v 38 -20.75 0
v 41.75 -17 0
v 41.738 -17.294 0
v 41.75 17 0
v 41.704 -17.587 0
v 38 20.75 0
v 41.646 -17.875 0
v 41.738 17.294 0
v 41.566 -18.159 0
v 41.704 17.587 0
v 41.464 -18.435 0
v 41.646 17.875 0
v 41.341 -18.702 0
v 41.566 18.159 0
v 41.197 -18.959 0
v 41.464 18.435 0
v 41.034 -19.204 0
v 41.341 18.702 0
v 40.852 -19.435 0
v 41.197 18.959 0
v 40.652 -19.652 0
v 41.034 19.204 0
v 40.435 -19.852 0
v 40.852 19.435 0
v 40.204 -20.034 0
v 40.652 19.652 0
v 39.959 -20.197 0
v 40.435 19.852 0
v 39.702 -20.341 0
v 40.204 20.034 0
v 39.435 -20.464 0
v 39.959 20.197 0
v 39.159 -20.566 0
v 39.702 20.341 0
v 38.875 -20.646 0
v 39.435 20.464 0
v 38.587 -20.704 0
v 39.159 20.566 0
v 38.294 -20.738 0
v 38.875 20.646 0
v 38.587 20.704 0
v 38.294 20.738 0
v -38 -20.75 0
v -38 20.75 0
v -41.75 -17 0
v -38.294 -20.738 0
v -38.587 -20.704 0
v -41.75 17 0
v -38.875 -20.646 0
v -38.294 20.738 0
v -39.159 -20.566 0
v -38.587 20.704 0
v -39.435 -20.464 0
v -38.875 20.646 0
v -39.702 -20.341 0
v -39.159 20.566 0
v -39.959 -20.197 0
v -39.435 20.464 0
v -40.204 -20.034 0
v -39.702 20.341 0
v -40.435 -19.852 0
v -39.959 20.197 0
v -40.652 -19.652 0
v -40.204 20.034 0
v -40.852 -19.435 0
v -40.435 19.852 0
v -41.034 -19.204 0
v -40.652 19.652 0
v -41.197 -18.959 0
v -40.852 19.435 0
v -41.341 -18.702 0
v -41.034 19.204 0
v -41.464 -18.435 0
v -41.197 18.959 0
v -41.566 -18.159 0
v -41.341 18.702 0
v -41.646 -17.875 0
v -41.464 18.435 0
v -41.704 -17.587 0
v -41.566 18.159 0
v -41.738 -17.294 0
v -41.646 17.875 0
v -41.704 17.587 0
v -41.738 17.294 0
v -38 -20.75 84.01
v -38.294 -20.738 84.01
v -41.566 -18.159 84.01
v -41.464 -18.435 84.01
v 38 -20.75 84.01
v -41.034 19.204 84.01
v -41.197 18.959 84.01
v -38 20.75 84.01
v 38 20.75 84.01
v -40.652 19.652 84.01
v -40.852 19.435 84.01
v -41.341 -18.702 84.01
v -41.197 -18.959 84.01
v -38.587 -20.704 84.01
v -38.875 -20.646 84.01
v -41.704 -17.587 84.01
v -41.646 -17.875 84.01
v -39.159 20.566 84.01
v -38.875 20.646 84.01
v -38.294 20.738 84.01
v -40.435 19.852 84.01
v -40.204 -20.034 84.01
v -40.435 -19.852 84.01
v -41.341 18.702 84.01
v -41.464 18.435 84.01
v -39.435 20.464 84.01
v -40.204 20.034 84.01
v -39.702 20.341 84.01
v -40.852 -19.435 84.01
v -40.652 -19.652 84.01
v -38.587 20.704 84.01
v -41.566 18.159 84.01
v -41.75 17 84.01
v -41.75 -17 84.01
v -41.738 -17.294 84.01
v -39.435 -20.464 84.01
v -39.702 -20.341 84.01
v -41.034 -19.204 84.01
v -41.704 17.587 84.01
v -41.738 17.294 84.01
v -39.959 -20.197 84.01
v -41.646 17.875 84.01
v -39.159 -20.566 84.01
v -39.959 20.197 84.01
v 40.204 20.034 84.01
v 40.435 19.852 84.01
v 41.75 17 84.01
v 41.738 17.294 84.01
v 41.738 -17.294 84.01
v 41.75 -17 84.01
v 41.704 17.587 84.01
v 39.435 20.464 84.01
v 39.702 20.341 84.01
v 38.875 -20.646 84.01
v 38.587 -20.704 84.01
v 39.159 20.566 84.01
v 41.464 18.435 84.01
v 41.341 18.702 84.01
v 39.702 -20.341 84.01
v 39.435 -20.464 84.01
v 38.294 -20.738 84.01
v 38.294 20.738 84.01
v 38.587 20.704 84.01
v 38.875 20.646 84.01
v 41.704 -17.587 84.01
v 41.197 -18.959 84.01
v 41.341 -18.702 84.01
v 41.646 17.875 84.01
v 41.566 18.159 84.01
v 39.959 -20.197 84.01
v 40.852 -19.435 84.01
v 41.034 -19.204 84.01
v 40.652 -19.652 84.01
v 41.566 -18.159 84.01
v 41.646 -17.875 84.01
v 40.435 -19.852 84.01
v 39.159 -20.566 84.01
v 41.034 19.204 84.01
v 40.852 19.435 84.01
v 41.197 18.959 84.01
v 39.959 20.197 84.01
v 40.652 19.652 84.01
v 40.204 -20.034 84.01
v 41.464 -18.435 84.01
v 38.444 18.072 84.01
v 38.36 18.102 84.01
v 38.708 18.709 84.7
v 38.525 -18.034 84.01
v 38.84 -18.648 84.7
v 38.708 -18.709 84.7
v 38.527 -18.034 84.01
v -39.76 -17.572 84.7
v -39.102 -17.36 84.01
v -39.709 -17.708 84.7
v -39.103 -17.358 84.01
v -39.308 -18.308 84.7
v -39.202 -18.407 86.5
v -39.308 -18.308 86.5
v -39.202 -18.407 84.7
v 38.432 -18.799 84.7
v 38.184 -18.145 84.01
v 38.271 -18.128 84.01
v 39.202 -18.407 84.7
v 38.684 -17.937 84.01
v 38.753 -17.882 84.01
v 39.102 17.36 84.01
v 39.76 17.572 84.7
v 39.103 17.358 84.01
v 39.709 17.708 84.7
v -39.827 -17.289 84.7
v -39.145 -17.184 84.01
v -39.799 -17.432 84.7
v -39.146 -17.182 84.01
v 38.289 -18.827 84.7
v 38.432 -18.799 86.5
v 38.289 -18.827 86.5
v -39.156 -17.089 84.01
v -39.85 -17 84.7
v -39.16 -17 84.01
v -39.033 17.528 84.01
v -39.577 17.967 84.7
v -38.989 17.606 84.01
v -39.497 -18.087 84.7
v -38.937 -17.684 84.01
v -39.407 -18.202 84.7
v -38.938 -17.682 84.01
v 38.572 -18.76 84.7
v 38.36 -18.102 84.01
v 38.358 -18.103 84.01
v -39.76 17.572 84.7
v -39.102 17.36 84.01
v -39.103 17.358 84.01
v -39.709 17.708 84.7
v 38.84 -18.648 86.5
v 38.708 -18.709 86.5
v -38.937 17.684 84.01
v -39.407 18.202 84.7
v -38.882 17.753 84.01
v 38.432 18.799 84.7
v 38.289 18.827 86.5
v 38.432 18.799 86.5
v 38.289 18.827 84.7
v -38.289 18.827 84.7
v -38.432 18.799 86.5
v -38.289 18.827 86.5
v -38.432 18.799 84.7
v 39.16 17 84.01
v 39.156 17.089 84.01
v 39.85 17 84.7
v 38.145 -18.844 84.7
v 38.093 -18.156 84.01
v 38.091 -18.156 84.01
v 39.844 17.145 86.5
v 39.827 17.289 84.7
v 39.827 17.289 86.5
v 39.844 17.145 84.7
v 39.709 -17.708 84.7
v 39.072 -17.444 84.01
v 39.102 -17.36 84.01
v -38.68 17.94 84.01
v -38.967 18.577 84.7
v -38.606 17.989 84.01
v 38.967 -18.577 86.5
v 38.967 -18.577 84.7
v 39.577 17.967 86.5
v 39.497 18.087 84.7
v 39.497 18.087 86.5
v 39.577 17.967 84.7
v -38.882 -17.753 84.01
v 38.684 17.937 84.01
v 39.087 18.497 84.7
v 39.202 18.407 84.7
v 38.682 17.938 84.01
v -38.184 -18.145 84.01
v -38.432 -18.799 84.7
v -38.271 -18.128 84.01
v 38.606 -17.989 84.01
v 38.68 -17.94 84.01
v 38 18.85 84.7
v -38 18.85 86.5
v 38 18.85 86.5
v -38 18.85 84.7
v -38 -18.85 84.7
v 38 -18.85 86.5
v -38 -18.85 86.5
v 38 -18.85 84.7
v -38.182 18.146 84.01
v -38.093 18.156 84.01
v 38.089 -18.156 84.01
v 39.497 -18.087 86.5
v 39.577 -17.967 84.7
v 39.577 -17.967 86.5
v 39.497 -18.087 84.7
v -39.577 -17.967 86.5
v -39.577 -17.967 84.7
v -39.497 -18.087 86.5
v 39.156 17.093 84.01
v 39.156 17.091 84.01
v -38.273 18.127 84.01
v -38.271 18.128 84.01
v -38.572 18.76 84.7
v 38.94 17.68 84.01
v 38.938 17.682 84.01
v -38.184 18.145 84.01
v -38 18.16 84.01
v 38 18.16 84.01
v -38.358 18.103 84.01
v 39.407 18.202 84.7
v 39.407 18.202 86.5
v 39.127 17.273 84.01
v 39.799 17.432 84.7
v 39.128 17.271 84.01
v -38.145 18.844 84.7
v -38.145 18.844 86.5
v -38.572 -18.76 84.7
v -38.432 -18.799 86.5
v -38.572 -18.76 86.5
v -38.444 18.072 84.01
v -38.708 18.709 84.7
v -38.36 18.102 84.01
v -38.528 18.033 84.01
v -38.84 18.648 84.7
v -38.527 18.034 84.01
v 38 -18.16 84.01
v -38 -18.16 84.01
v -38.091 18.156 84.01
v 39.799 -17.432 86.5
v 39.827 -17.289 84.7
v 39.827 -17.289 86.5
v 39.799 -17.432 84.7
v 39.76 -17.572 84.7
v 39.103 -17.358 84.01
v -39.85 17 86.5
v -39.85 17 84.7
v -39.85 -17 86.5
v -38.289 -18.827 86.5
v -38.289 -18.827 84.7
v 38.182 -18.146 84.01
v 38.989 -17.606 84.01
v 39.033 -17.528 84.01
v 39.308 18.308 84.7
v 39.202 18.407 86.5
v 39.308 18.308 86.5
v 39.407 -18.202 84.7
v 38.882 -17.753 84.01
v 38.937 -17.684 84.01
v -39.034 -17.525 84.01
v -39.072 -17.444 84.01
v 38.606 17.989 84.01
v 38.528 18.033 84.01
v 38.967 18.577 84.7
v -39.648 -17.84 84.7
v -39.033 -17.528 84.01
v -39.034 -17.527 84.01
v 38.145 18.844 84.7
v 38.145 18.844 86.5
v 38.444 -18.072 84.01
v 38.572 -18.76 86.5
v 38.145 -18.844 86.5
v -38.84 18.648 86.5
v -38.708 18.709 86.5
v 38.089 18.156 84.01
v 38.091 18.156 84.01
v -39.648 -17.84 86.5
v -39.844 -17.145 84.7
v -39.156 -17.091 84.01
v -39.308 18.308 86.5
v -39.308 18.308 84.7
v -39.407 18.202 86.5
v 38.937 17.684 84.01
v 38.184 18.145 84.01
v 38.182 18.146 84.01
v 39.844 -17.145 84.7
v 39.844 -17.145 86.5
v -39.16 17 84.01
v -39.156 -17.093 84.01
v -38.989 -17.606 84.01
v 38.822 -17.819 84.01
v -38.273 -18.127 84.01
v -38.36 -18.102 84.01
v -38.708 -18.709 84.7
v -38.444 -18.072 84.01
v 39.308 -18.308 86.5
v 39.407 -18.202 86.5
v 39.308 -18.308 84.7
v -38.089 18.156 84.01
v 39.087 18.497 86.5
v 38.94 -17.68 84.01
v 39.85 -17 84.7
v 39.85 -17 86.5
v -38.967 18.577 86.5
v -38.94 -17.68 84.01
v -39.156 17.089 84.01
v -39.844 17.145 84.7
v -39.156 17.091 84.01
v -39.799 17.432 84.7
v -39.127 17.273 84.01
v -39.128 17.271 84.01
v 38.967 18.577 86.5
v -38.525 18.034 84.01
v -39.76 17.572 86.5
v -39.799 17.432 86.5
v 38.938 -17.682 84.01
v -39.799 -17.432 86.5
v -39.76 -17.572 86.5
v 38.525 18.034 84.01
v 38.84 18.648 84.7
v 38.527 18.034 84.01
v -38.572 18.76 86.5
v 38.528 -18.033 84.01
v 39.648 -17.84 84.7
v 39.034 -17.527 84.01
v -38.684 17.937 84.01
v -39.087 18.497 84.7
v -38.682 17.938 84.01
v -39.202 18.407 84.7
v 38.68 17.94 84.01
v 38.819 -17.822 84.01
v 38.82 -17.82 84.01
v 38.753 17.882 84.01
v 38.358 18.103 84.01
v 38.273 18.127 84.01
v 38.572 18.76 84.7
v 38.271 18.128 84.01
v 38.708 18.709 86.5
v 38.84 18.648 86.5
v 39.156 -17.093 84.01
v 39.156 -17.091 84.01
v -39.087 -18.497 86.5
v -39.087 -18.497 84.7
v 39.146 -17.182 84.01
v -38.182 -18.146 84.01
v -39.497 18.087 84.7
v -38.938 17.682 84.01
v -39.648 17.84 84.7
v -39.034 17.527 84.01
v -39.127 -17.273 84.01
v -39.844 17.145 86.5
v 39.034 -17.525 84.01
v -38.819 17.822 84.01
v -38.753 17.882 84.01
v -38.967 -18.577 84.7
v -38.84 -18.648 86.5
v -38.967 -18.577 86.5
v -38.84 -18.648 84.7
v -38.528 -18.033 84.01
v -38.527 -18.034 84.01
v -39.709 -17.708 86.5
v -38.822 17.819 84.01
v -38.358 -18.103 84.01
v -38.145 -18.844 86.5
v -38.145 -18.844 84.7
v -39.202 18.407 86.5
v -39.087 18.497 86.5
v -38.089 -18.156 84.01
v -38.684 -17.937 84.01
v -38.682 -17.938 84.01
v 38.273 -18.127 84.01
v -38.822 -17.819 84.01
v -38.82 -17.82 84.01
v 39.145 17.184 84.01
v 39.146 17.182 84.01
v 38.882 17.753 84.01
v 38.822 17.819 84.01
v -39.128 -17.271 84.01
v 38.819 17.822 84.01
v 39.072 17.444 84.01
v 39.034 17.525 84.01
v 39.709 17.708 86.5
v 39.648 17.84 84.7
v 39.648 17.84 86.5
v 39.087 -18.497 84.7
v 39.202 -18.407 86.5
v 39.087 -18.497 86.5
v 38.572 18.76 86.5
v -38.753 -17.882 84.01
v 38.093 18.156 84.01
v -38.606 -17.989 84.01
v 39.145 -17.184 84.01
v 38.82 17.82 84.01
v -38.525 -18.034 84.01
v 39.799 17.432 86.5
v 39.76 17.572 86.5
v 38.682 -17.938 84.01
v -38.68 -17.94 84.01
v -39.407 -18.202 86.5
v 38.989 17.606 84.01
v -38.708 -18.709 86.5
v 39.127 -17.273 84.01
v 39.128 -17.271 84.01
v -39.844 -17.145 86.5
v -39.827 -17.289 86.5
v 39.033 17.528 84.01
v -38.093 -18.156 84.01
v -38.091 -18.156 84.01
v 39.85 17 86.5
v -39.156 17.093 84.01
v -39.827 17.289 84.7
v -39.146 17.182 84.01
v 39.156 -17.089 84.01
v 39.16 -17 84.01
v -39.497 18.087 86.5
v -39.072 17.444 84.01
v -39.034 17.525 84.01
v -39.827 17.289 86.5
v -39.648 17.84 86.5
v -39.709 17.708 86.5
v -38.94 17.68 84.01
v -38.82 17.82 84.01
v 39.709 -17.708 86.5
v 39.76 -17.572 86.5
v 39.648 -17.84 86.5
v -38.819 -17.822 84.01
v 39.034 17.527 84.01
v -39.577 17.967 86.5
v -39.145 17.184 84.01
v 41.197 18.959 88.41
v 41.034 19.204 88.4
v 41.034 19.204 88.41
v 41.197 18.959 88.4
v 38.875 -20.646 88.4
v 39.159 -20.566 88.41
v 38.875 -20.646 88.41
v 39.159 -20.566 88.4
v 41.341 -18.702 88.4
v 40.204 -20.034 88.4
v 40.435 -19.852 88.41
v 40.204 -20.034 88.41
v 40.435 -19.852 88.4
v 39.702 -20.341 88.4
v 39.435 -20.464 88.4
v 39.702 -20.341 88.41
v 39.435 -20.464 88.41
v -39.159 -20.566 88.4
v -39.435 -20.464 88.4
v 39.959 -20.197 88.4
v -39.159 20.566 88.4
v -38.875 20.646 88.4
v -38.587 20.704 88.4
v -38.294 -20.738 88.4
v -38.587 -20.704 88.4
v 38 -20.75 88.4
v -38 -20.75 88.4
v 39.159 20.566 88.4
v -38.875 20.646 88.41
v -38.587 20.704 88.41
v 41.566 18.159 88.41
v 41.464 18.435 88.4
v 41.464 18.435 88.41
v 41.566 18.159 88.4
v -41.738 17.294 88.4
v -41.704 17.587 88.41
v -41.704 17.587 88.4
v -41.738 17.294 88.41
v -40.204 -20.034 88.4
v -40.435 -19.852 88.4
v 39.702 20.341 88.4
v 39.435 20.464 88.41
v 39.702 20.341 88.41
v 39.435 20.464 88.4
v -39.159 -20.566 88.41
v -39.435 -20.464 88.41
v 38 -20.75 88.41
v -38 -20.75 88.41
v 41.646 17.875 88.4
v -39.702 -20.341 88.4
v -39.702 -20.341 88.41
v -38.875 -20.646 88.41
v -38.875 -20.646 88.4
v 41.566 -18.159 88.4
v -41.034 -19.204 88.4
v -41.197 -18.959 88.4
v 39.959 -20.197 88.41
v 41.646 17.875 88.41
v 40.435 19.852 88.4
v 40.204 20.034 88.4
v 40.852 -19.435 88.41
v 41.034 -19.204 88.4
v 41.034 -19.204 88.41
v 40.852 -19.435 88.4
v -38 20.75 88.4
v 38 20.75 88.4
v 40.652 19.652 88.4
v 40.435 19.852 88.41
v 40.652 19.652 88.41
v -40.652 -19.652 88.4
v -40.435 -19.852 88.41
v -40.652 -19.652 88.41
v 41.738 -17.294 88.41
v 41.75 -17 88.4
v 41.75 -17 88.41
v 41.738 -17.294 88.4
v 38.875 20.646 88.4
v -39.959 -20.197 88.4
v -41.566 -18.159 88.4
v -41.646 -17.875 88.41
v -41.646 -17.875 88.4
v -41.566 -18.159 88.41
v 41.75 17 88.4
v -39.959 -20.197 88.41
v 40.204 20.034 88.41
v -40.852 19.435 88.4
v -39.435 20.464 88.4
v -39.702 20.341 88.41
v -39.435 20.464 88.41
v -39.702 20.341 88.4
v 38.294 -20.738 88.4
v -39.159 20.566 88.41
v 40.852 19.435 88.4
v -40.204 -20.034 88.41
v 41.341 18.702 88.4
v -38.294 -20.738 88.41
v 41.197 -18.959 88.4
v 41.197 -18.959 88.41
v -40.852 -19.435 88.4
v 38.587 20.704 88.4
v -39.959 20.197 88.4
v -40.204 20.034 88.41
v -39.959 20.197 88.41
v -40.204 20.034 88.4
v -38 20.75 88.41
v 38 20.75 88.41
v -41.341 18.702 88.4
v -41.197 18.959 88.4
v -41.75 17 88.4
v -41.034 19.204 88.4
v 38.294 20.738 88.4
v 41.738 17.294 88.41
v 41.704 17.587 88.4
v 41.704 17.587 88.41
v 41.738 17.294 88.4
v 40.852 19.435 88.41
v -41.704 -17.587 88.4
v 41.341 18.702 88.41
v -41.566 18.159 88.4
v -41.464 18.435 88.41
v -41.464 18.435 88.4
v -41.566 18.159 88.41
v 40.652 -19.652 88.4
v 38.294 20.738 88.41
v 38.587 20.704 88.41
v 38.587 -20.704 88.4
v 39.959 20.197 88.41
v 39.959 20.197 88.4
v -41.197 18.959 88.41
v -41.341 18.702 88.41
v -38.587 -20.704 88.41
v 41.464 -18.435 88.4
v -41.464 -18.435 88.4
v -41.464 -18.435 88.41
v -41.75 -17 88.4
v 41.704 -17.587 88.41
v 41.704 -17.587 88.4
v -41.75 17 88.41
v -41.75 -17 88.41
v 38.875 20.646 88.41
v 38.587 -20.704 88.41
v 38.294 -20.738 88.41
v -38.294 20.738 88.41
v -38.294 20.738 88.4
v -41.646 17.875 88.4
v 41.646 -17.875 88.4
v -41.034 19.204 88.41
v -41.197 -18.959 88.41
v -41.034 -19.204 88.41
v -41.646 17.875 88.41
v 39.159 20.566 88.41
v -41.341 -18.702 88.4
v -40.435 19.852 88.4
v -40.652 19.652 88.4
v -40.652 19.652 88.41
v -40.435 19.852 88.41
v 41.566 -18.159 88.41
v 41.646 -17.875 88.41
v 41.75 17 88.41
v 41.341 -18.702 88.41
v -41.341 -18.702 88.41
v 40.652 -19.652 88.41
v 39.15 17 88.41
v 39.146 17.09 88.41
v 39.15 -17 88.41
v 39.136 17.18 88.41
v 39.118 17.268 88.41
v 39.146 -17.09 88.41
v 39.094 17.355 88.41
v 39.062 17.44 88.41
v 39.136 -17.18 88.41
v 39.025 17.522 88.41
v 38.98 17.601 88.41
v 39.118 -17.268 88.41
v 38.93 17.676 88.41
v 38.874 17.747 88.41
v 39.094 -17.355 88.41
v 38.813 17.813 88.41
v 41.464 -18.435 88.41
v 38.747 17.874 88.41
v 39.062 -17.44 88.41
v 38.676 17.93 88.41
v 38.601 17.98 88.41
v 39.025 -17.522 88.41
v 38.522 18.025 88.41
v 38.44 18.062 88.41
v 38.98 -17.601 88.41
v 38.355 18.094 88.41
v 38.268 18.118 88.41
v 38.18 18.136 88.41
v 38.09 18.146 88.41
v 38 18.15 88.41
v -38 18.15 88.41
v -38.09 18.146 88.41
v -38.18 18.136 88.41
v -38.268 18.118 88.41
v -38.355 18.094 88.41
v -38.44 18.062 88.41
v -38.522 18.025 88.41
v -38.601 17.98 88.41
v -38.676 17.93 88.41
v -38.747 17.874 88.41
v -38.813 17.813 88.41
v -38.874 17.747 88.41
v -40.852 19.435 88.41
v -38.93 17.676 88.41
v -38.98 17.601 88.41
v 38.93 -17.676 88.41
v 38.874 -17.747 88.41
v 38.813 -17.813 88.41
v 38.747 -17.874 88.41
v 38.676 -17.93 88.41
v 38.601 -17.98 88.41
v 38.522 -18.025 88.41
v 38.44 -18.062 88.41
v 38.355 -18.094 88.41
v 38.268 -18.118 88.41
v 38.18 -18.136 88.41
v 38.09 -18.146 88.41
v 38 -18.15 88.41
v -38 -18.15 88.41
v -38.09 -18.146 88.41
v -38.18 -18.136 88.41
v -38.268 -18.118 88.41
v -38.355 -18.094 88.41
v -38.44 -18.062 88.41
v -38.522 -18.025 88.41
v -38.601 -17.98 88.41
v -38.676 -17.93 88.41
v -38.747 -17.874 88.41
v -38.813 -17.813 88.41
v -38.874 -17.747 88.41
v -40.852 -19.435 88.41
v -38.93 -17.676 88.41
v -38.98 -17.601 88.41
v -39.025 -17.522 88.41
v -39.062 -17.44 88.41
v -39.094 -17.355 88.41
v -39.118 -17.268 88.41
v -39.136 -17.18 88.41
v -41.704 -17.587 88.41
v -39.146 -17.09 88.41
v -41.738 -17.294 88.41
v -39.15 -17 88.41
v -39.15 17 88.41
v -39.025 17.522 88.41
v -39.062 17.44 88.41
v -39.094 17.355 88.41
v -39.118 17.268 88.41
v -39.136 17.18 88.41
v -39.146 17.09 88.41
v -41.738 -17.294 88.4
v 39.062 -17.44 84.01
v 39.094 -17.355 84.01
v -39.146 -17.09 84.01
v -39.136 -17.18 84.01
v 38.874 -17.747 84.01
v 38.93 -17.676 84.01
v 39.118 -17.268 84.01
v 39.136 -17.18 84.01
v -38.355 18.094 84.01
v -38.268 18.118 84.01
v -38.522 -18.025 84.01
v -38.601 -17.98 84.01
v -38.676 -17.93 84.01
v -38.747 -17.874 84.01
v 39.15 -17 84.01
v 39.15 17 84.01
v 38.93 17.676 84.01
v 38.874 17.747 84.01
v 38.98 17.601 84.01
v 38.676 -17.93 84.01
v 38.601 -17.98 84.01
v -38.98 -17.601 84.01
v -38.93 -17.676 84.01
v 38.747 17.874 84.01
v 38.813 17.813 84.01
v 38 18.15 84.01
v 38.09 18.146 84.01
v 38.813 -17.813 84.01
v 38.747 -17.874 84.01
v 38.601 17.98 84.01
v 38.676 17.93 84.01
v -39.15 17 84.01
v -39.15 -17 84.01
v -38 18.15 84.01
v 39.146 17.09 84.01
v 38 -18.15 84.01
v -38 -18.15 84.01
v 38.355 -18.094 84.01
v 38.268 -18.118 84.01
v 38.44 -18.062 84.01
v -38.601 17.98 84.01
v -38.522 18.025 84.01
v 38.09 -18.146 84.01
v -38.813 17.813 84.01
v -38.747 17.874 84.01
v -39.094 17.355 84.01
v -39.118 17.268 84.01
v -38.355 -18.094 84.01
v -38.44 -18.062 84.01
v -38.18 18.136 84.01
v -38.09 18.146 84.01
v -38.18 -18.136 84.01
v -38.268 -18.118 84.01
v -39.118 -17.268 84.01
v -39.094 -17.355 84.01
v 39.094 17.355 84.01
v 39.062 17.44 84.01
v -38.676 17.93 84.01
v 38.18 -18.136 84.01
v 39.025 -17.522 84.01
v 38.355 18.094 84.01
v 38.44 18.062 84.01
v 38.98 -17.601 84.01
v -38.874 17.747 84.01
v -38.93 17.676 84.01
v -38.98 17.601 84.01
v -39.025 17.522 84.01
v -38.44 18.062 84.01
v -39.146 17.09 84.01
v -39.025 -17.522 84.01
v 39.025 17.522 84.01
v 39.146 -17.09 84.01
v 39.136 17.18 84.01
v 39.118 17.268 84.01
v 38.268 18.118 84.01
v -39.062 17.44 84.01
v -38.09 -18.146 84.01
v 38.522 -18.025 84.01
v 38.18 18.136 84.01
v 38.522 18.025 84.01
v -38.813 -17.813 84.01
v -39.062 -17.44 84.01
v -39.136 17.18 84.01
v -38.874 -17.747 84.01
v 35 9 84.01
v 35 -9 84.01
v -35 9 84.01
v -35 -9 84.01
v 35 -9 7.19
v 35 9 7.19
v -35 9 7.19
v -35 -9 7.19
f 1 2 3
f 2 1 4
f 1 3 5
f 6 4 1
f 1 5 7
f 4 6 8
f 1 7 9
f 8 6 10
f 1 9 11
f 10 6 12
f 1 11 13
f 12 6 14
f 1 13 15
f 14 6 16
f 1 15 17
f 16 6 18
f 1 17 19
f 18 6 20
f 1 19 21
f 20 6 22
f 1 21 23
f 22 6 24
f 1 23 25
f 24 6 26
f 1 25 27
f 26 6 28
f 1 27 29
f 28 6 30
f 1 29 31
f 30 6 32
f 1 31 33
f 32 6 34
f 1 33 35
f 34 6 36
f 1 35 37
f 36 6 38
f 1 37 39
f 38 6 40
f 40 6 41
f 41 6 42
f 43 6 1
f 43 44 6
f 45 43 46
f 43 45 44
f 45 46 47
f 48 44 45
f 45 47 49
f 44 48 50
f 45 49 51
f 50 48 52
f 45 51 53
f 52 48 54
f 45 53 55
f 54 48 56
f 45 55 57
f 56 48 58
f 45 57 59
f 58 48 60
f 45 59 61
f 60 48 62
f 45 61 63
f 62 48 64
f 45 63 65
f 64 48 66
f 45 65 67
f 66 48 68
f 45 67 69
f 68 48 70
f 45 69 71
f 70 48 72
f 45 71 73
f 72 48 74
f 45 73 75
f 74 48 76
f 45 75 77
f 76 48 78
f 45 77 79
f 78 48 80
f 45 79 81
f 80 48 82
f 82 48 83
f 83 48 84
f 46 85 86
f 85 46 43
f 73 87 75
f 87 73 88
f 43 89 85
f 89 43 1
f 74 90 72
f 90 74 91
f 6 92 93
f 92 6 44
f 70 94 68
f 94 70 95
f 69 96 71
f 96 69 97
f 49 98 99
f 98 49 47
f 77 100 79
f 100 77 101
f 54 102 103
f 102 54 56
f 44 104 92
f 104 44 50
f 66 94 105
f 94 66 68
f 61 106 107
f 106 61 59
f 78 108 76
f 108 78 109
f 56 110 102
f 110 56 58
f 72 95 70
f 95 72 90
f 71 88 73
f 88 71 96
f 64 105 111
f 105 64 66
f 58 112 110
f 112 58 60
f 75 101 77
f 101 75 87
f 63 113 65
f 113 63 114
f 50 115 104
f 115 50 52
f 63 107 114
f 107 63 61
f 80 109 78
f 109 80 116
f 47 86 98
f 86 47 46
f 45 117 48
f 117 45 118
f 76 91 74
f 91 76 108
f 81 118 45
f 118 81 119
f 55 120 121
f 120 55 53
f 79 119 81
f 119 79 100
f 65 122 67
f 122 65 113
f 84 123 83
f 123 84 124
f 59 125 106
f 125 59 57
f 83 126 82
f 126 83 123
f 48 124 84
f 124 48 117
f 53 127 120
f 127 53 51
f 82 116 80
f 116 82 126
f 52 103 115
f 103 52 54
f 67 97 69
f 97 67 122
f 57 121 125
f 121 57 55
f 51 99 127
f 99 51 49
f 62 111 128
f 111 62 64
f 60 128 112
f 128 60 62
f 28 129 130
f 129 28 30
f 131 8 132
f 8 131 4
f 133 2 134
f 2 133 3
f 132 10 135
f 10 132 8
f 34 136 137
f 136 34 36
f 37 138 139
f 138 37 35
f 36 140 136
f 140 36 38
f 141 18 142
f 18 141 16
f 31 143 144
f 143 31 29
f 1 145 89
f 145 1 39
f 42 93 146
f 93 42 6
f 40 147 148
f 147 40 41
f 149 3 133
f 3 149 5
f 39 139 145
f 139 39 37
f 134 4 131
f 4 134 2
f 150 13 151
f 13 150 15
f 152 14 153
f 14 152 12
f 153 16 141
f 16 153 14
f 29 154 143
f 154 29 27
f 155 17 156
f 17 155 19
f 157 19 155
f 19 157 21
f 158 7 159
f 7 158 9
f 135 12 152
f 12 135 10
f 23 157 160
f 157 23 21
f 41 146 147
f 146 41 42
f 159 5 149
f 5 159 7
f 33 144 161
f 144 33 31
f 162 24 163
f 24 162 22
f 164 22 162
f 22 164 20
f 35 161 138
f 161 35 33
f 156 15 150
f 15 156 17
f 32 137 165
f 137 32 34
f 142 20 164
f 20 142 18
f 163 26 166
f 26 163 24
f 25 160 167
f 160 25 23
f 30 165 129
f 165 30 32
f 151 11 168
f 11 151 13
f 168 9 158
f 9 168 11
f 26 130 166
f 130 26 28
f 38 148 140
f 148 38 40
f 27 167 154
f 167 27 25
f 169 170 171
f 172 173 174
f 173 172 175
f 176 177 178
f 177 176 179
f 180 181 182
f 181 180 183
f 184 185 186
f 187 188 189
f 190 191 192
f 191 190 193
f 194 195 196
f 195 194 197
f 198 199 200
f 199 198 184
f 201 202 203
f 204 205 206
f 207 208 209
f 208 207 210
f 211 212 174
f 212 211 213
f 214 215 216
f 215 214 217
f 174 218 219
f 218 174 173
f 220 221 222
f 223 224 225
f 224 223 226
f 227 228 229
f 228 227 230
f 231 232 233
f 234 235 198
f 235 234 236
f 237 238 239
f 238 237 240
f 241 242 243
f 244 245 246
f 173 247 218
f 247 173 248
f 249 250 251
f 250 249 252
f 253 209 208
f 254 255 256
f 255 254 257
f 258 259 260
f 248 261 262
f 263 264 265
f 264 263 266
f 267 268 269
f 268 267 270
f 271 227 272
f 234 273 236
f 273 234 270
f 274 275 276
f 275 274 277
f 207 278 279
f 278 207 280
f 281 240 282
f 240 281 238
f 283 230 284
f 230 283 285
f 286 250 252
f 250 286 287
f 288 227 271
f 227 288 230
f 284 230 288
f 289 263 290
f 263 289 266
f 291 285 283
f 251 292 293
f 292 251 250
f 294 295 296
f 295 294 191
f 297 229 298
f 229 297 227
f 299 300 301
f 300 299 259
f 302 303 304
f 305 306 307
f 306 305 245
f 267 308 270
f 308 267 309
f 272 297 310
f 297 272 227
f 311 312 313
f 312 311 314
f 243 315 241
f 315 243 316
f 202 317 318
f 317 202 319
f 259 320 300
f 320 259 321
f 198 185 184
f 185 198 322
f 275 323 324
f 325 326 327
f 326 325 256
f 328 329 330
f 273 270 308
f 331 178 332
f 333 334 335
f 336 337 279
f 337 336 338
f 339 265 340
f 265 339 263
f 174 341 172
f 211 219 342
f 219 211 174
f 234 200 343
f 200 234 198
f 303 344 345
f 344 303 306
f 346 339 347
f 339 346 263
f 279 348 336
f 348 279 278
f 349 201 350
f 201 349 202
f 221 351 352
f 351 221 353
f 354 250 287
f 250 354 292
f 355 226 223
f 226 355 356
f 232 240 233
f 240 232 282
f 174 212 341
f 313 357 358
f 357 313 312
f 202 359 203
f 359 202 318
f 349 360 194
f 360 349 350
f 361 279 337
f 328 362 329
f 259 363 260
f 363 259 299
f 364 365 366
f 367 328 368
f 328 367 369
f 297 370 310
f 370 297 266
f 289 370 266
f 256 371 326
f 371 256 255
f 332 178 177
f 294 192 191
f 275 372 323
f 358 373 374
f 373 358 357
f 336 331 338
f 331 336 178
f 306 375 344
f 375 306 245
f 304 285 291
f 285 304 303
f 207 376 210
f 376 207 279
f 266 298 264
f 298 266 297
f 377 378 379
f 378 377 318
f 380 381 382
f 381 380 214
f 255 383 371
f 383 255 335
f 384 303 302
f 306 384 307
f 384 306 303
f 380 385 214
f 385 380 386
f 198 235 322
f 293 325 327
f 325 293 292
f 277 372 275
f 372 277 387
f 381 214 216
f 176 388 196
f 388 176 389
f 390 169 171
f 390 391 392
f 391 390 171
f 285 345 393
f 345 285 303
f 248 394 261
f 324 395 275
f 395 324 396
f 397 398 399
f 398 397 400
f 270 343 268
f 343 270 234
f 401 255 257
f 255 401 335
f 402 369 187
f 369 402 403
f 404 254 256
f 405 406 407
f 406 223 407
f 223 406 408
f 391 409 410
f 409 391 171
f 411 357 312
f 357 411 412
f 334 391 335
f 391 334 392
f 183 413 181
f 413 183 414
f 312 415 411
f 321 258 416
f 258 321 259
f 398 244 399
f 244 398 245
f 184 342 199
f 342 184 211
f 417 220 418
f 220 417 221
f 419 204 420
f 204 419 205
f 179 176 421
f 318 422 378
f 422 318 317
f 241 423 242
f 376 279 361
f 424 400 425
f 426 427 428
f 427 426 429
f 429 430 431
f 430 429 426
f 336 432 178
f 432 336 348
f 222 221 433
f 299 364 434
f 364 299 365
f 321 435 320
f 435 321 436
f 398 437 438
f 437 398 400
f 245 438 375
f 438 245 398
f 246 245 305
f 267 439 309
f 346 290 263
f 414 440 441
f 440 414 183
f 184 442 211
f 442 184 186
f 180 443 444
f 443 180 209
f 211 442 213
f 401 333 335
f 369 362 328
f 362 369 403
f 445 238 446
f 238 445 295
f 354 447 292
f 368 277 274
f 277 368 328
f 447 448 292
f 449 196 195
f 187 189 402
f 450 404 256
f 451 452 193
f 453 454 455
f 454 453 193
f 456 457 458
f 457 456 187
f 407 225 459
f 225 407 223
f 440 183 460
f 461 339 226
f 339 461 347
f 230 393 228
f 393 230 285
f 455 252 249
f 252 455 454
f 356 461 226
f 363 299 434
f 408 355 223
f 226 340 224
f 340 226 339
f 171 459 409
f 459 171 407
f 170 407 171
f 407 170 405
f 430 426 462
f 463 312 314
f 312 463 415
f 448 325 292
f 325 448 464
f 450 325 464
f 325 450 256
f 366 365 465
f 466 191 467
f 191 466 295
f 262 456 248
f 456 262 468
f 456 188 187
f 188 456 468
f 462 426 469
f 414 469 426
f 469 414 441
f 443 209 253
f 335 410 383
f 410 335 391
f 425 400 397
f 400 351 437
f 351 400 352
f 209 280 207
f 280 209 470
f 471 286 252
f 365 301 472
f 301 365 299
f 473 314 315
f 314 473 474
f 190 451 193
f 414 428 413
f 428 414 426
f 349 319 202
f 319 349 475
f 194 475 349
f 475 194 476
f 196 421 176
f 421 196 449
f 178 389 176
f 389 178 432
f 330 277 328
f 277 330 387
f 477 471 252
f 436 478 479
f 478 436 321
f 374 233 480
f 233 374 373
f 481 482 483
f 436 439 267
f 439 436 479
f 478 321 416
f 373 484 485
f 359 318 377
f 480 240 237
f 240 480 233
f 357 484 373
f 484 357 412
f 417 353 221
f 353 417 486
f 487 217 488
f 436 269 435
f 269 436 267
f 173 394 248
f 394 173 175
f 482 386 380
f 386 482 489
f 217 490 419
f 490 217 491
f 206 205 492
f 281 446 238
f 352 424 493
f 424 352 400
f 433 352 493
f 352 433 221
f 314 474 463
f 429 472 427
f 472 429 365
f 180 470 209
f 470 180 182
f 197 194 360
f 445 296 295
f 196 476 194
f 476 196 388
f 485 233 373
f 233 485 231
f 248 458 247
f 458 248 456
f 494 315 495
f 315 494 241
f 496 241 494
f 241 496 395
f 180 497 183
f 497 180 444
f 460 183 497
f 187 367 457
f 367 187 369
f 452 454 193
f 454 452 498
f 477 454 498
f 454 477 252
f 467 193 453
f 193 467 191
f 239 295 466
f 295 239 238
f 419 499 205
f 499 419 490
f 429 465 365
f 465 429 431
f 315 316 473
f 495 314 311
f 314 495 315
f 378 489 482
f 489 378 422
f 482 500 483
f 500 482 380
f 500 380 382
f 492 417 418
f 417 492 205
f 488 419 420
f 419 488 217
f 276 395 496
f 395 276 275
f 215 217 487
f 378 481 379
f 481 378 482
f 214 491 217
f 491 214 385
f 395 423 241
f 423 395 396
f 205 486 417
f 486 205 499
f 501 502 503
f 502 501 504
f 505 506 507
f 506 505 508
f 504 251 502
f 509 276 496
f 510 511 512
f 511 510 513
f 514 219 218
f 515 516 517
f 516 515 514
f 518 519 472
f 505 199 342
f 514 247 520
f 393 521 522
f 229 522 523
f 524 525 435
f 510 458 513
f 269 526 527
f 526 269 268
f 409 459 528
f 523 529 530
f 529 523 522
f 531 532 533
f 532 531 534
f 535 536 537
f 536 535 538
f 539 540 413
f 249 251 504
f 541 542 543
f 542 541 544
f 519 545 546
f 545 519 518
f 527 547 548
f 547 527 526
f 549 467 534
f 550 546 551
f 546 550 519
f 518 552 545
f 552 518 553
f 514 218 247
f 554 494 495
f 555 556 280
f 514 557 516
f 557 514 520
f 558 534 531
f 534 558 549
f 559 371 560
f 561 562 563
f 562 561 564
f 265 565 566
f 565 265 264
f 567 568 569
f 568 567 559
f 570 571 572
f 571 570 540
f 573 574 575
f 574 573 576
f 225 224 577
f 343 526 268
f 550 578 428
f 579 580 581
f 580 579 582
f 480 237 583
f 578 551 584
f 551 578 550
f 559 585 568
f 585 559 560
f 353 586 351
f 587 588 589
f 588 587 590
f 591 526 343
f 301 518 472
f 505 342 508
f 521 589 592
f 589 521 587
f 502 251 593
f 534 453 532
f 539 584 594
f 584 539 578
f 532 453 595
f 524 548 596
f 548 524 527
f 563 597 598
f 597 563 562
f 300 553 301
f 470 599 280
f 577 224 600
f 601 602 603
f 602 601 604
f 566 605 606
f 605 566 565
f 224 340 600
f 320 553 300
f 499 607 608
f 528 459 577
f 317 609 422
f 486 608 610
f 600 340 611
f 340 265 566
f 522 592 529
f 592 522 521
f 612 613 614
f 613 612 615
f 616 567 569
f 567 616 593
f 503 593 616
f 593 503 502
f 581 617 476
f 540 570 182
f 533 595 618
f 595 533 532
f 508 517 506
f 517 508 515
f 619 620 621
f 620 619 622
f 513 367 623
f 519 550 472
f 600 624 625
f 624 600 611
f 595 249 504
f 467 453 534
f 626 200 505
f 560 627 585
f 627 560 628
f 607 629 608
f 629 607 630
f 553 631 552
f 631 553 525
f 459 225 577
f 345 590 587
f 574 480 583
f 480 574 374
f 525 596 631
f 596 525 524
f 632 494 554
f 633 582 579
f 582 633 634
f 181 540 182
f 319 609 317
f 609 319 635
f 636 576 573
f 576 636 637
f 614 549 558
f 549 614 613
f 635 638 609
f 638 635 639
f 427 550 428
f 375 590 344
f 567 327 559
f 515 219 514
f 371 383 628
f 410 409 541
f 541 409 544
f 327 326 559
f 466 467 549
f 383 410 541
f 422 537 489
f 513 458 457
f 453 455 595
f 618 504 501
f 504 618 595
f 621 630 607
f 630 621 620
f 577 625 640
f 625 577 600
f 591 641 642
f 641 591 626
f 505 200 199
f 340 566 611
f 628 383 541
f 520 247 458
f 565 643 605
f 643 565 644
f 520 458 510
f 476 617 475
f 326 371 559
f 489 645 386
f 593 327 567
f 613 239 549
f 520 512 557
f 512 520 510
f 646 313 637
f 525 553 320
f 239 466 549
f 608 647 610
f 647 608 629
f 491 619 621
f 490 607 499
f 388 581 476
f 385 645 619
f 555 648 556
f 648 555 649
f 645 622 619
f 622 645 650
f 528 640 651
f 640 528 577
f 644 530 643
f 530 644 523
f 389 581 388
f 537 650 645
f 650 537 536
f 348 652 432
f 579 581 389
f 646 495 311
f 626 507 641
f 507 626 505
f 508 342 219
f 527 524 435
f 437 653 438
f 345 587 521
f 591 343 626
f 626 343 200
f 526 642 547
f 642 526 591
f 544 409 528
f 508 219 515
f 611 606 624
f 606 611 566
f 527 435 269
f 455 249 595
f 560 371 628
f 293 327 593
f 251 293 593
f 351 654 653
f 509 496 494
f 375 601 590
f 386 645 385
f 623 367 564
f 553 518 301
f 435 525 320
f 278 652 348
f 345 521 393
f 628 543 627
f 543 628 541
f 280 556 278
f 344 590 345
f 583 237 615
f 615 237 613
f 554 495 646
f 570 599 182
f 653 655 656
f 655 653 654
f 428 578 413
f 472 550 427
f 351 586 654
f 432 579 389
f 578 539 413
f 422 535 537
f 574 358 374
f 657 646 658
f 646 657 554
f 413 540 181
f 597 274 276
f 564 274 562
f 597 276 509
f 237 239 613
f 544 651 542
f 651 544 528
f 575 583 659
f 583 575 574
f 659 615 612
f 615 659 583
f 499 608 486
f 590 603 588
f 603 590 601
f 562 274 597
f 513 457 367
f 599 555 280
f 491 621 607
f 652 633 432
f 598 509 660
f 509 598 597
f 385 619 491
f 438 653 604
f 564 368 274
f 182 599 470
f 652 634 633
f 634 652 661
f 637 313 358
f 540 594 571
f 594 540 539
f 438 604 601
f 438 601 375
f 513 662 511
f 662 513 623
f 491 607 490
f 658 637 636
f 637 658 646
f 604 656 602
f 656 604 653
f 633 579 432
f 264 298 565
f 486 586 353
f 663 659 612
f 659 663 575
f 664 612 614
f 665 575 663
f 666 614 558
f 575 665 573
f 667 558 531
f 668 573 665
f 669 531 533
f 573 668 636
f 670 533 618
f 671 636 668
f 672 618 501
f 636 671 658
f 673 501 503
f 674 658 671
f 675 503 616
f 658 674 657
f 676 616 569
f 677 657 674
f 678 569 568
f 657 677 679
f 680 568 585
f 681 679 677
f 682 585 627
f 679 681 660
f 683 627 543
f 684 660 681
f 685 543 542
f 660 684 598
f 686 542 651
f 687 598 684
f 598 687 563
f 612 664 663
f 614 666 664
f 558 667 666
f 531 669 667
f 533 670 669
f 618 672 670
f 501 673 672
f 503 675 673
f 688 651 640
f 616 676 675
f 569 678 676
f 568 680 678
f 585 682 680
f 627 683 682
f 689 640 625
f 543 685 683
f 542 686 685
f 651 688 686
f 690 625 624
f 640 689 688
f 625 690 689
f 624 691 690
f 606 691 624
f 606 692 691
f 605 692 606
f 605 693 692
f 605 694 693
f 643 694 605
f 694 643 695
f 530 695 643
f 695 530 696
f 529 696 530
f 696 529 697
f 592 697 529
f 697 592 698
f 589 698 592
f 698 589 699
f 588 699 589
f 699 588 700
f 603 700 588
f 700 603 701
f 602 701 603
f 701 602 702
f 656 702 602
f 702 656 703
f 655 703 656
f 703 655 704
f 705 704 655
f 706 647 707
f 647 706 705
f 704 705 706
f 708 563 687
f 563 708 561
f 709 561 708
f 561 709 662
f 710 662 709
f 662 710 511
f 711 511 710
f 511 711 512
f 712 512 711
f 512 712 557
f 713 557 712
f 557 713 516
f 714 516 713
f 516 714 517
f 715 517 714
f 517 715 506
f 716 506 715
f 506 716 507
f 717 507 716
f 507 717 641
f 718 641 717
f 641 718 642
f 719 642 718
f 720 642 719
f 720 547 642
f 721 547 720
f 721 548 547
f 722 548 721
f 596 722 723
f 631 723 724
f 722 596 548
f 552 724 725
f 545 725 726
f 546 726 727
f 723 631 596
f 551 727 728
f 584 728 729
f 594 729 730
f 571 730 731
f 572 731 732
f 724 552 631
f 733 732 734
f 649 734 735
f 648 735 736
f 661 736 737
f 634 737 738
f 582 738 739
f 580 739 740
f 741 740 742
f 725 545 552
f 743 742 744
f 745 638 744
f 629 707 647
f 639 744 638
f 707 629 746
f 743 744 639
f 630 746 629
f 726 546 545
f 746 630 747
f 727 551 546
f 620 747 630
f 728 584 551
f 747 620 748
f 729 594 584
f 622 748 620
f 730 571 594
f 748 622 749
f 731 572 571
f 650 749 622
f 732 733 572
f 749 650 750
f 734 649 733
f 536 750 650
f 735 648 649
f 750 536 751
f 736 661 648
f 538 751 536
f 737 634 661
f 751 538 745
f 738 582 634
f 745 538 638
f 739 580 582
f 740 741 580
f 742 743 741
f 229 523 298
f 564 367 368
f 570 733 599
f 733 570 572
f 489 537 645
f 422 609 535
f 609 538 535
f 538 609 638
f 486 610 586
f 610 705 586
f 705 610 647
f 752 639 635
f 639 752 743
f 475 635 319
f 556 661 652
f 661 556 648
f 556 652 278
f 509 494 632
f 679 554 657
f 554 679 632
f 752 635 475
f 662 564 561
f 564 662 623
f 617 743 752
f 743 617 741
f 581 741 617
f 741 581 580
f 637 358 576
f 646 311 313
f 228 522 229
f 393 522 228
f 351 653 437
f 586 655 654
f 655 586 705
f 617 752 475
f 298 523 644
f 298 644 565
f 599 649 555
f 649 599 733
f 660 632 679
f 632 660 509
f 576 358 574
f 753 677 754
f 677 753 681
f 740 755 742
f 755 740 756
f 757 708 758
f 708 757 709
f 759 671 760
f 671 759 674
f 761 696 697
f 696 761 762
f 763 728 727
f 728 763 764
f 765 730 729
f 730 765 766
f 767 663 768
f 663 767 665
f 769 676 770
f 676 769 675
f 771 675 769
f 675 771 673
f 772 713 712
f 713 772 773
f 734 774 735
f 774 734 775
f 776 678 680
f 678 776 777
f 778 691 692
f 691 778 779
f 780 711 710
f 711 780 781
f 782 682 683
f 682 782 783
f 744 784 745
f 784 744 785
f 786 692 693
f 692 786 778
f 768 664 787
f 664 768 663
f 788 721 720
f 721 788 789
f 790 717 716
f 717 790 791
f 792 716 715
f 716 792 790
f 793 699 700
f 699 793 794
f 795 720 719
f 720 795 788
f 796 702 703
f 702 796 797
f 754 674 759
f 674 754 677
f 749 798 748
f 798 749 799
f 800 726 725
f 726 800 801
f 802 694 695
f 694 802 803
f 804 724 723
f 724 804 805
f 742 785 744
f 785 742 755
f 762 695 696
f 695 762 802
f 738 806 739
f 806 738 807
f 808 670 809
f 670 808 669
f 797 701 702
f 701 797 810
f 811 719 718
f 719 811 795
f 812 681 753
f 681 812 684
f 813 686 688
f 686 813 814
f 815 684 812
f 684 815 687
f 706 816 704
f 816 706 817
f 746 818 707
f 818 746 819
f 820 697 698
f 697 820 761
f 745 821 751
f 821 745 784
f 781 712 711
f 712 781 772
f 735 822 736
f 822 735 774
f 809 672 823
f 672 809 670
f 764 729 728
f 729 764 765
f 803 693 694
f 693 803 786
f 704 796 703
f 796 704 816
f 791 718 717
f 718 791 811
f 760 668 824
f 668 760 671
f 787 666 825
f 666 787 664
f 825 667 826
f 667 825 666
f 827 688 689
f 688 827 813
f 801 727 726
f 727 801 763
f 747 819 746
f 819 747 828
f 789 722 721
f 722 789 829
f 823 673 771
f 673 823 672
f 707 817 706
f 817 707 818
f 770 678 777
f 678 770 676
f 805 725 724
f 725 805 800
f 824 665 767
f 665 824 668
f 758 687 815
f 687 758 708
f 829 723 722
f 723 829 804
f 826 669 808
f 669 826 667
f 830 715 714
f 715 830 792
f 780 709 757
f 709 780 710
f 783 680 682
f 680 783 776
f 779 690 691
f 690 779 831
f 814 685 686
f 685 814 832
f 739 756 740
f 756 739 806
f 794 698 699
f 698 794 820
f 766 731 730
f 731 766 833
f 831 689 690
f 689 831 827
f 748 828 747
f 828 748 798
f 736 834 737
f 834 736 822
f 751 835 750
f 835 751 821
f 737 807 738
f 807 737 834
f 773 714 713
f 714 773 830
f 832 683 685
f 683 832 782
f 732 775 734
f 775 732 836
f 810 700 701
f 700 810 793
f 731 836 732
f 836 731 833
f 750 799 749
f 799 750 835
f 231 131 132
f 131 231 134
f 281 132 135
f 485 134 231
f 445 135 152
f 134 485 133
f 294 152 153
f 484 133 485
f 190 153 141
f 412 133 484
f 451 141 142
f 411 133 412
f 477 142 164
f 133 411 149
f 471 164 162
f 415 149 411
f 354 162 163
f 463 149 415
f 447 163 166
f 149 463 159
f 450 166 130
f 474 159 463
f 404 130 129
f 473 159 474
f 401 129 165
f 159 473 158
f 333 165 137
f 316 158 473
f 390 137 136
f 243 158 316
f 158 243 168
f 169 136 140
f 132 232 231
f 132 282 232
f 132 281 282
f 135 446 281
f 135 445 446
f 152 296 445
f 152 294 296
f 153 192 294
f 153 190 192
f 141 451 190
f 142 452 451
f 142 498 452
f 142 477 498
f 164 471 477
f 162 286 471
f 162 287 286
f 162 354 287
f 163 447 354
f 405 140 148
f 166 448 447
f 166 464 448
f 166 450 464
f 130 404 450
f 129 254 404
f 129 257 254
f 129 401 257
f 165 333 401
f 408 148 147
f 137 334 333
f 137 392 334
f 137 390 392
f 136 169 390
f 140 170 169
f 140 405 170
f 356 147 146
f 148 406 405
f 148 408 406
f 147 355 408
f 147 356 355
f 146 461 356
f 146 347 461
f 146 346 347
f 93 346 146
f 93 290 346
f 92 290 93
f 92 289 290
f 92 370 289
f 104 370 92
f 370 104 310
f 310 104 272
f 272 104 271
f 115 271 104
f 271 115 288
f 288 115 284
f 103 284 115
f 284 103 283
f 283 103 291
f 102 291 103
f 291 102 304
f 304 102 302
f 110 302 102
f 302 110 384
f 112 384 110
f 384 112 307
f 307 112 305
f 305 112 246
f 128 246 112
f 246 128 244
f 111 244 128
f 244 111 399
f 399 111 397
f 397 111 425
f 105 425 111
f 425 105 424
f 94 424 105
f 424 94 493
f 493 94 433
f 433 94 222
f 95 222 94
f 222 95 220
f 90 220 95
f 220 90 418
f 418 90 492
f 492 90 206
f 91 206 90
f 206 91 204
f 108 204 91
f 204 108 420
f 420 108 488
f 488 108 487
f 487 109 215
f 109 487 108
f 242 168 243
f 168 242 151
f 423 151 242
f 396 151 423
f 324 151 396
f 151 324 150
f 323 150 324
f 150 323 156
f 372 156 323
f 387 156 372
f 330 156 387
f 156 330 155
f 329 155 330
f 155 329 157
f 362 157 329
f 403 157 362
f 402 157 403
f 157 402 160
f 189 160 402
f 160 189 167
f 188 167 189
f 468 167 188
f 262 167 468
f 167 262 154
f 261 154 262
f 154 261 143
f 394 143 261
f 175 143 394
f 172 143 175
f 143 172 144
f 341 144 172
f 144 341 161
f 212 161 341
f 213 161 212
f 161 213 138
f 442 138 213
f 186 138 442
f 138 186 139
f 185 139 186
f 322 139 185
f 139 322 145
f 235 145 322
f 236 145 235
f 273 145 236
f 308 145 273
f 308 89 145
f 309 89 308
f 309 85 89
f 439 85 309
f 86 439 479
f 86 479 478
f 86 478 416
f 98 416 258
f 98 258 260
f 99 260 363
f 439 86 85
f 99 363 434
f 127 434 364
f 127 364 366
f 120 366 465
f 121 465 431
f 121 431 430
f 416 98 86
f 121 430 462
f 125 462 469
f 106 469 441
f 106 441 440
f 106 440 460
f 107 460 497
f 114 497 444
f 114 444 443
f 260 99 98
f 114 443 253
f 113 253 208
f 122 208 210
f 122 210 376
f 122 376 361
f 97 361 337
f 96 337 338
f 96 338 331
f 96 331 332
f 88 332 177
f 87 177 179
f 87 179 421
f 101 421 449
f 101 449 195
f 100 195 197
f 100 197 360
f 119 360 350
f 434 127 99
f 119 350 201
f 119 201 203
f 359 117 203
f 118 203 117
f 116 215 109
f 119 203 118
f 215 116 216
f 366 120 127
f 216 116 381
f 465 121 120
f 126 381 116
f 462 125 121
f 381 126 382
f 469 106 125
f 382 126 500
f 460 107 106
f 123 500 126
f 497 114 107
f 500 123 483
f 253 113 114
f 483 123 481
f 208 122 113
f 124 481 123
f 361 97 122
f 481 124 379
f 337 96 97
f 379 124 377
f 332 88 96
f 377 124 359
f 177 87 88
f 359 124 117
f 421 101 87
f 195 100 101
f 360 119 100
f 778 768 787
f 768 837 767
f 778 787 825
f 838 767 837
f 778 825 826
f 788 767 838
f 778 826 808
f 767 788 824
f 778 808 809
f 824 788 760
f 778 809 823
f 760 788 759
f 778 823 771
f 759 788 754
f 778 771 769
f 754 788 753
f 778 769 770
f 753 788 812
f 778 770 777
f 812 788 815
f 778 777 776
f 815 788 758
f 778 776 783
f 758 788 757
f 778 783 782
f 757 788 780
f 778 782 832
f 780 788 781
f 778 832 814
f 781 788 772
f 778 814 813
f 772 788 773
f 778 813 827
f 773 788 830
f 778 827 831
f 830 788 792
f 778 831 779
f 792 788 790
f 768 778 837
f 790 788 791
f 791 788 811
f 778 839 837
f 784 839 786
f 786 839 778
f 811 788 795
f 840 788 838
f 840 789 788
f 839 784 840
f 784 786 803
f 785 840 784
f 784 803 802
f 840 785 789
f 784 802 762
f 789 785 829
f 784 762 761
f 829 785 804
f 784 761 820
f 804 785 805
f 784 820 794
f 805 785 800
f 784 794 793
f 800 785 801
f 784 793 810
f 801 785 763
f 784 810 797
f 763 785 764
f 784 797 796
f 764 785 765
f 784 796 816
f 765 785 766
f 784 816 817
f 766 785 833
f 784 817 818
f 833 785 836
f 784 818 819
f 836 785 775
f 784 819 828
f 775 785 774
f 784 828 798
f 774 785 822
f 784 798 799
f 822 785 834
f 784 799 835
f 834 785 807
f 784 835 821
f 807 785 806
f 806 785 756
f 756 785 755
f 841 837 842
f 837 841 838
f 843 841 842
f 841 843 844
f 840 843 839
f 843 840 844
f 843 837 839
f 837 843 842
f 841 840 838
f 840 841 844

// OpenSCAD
// file: bambu-x1c.scad
// Bambu Lab X1 Carbon — build volume and dimension reporting

BED_X = 256;
BED_Y = 256;
BED_Z = 256;

// Assert a part fits within the build volume.
// Call with the bounding box dimensions of your part.
module assert_fits(x, y, z) {
  assert(x <= BED_X, str("Part X (", x, "mm) exceeds bed X (", BED_X, "mm)"));
  assert(y <= BED_Y, str("Part Y (", y, "mm) exceeds bed Y (", BED_Y, "mm)"));
  assert(z <= BED_Z, str("Part Z (", z, "mm) exceeds bed Z (", BED_Z, "mm)"));
}

// Echo dimensions in a parseable format for the Node.js pipeline.
// Call at the end of your .scad file with the part's bounding box.
module report_dimensions(x, y, z, label="part") {
  assert_fits(x, y, z);
  echo(str("DIMENSION:", label, ":x=", x));
  echo(str("DIMENSION:", label, ":y=", y));
  echo(str("DIMENSION:", label, ":z=", z));
}
// main file
// =============================================================================
// Caliper-Test v2 — Gridfinity 2x1 12u bin for HARTE 6-inch digital caliper
// =============================================================================
// Upright caliper storage with straight through-pocket.
// Caliper drops in display-body-first, rests on floor, beam extends up.
//
// Pocket cross-section (looking down into the bin):
//
//   Y (thickness axis)
//   ^
//  18 +--------------------------------------------+
//     |                                            |
//     |         70 x 18 mm through-slot            |
//     |         (centered in bin XY)               |
//     |                                            |
//   0 +--------------------------------------------+
//     0                                           70  -> X (width axis)
//
// Single rectangular pocket from floor through stacking lip.
// No ledge, no lid — user grabs the beam above the bin.

include <gridfinity-spec.scad>
include <bambu-x1c.scad>

$fn = 80;

// =============================================================================
// PARAMETERS
// =============================================================================

// Grid sizing
grid_x = 2;
grid_y = 1;
height_units = 12;

// Derived outer dimensions
outer_x = gf_bin_width(grid_x);          // 83.5
outer_y = gf_bin_width(grid_y);          // 41.5
body_height = height_units * GF_HEIGHT_UNIT; // 84.0
lip_height = GF_STACKING_LIP_HEIGHT;     // 4.4
total_height = body_height + lip_height;  // 88.4

// Wall and floor
wall = GF_WALL_THICKNESS_THICK;          // 1.2
inner_x = outer_x - 2 * wall;            // 81.1
inner_y = outer_y - 2 * wall;            // 39.1
floor_z = GF_INTERNAL_FLOOR_ELEV;        // 7.2
usable_depth = body_height - floor_z;    // 76.8

// Corner radii
r_outer = GF_BASE_TOP_RADIUS;            // 3.75
r_inner = max(0.1, r_outer - wall);      // 2.55
r_fillet = GF_INTERNAL_FILLET;            // 2.8

// Caliper dimensions (from measurements.json)
caliper_clearance = 1.0;  // per side (tighter fit for v2)

display_body_width = 68;       // X - total including beam
display_body_thickness = 16;   // Y
display_body_length = 63;      // Z along beam axis

beam_width = 16;               // X - face width
beam_thickness = 5;            // Y - edge thickness

// Pocket dimensions (caliper + clearance)
display_cavity_x = display_body_width + 2 * caliper_clearance;      // 70
display_cavity_y = display_body_thickness + 2 * caliper_clearance;   // 18
display_cavity_z = display_body_length + caliper_clearance;          // 64

// Beam slot parameters removed — v3 uses a single through-pocket.
// Beam fits within the 70×18mm pocket (16×5 nominal beam).

// =============================================================================
// HELPER: Rounded rectangle centered at origin, bottom at Z=0
// =============================================================================
module rounded_rect(sx, sy, h, r) {
    cr = min(r, min(sx, sy) / 2);
    hull() {
        for (dx = [-1, 1])
            for (dy = [-1, 1])
                translate([dx * (sx/2 - cr), dy * (sy/2 - cr), 0])
                    cylinder(r=cr, h=h);
    }
}

// =============================================================================
// GRIDFINITY BASE PROFILE — built directly from constants
// =============================================================================
module base_unit() {
    pw = GF_BASE_PROFILE_WIDTH;  // 2.95
    bt = GF_BIN_BASE_TOP;        // 41.5
    r_top = GF_BASE_TOP_RADIUS;  // 3.75

    for (i = [0 : len(GF_BASE_PROFILE) - 2]) {
        p0 = GF_BASE_PROFILE[i];
        p1 = GF_BASE_PROFILE[i + 1];

        s0 = bt - 2 * (pw - p0[0]);
        s1 = bt - 2 * (pw - p1[0]);
        r0 = max(0.1, r_top - (pw - p0[0]));
        r1 = max(0.1, r_top - (pw - p1[0]));

        hull() {
            translate([0, 0, p0[1]])
                rounded_rect(s0, s0, 0.01, r0);
            translate([0, 0, p1[1]])
                rounded_rect(s1, s1, 0.01, r1);
        }
    }
}

module base_grid() {
    // Individual base pads
    for (ix = [0 : grid_x - 1])
        for (iy = [0 : grid_y - 1])
            translate([
                (ix - (grid_x - 1) / 2) * GF_GRID_PITCH,
                (iy - (grid_y - 1) / 2) * GF_GRID_PITCH,
                0
            ])
            base_unit();

    // Bridge plate connecting pads: from profile top to base height
    translate([0, 0, GF_BASE_PROFILE_HEIGHT])
        rounded_rect(outer_x, outer_y,
                     GF_BASE_HEIGHT - GF_BASE_PROFILE_HEIGHT,
                     r_outer);
}

// =============================================================================
// STACKING LIP — built directly from constants
// =============================================================================
module stacking_lip() {
    pw = GF_STACKING_LIP_DEPTH;  // 2.6
    lip_inner_x = outer_x - 2 * pw;
    lip_inner_y = outer_y - 2 * pw;
    r_lip_inner = max(0.1, r_outer - pw);

    difference() {
        _lip_sweep(outer_x, outer_y, r_outer);

        translate([0, 0, -0.01])
            rounded_rect(lip_inner_x, lip_inner_y,
                         lip_height + 0.02, r_lip_inner);
    }
}

module _lip_sweep(sx, sy, r) {
    pw = GF_STACKING_LIP_DEPTH;  // 2.6

    for (i = [0 : len(GF_STACKING_LIP) - 2]) {
        p0 = GF_STACKING_LIP[i];
        p1 = GF_STACKING_LIP[i + 1];

        s0x = sx - 2 * (pw - p0[0]);
        s0y = sy - 2 * (pw - p0[0]);
        s1x = sx - 2 * (pw - p1[0]);
        s1y = sy - 2 * (pw - p1[0]);
        r0 = max(0.1, r - (pw - p0[0]));
        r1 = max(0.1, r - (pw - p1[0]));

        hull() {
            translate([0, 0, p0[1]])
                rounded_rect(s0x, s0y, 0.01, r0);
            translate([0, 0, p1[1]])
                rounded_rect(s1x, s1y, 0.01, r1);
        }
    }
}

// =============================================================================
// BIN BODY — solid outer shape (base + block + lip, no interior cavity)
// =============================================================================
// The body is kept solid — the pocket module defines the only interior void.
// This ensures the pocket walls and transition ledge are properly formed.
module bin_body() {
    union() {
        base_grid();
        // Extend 0.01mm above body_height to overlap with lip (avoids
        // coincident faces at block-lip boundary → watertight mesh)
        rounded_rect(outer_x, outer_y, body_height + 0.01, r_outer);
        translate([0, 0, body_height])
            stacking_lip();
    }
}

// =============================================================================
// POCKET — straight through-slot (the only interior void)
// =============================================================================
// Single 70×18mm rectangular pocket from floor through stacking lip.
// Caliper drops in display-body-first, rests on floor. Beam extends up
// and out for grabbing. No ledge, no lid.
// Centered in bin XY footprint.

module pocket() {
    translate([-display_cavity_x/2, -display_cavity_y/2, floor_z - 0.01])
        cube([display_cavity_x, display_cavity_y,
              usable_depth + lip_height + 0.02]);
}

// =============================================================================
// FINAL ASSEMBLY
// =============================================================================

difference() {
    bin_body();
    pocket();
}

// =============================================================================
// DIMENSION REPORTING
// =============================================================================

report_dimensions(outer_x, outer_y, total_height, "bin_outer");
report_dimensions(outer_x, outer_y, body_height, "bin_body");
report_dimensions(inner_x, inner_y, usable_depth, "bin_inner");
report_dimensions(display_cavity_x, display_cavity_y, usable_depth, "pocket");
